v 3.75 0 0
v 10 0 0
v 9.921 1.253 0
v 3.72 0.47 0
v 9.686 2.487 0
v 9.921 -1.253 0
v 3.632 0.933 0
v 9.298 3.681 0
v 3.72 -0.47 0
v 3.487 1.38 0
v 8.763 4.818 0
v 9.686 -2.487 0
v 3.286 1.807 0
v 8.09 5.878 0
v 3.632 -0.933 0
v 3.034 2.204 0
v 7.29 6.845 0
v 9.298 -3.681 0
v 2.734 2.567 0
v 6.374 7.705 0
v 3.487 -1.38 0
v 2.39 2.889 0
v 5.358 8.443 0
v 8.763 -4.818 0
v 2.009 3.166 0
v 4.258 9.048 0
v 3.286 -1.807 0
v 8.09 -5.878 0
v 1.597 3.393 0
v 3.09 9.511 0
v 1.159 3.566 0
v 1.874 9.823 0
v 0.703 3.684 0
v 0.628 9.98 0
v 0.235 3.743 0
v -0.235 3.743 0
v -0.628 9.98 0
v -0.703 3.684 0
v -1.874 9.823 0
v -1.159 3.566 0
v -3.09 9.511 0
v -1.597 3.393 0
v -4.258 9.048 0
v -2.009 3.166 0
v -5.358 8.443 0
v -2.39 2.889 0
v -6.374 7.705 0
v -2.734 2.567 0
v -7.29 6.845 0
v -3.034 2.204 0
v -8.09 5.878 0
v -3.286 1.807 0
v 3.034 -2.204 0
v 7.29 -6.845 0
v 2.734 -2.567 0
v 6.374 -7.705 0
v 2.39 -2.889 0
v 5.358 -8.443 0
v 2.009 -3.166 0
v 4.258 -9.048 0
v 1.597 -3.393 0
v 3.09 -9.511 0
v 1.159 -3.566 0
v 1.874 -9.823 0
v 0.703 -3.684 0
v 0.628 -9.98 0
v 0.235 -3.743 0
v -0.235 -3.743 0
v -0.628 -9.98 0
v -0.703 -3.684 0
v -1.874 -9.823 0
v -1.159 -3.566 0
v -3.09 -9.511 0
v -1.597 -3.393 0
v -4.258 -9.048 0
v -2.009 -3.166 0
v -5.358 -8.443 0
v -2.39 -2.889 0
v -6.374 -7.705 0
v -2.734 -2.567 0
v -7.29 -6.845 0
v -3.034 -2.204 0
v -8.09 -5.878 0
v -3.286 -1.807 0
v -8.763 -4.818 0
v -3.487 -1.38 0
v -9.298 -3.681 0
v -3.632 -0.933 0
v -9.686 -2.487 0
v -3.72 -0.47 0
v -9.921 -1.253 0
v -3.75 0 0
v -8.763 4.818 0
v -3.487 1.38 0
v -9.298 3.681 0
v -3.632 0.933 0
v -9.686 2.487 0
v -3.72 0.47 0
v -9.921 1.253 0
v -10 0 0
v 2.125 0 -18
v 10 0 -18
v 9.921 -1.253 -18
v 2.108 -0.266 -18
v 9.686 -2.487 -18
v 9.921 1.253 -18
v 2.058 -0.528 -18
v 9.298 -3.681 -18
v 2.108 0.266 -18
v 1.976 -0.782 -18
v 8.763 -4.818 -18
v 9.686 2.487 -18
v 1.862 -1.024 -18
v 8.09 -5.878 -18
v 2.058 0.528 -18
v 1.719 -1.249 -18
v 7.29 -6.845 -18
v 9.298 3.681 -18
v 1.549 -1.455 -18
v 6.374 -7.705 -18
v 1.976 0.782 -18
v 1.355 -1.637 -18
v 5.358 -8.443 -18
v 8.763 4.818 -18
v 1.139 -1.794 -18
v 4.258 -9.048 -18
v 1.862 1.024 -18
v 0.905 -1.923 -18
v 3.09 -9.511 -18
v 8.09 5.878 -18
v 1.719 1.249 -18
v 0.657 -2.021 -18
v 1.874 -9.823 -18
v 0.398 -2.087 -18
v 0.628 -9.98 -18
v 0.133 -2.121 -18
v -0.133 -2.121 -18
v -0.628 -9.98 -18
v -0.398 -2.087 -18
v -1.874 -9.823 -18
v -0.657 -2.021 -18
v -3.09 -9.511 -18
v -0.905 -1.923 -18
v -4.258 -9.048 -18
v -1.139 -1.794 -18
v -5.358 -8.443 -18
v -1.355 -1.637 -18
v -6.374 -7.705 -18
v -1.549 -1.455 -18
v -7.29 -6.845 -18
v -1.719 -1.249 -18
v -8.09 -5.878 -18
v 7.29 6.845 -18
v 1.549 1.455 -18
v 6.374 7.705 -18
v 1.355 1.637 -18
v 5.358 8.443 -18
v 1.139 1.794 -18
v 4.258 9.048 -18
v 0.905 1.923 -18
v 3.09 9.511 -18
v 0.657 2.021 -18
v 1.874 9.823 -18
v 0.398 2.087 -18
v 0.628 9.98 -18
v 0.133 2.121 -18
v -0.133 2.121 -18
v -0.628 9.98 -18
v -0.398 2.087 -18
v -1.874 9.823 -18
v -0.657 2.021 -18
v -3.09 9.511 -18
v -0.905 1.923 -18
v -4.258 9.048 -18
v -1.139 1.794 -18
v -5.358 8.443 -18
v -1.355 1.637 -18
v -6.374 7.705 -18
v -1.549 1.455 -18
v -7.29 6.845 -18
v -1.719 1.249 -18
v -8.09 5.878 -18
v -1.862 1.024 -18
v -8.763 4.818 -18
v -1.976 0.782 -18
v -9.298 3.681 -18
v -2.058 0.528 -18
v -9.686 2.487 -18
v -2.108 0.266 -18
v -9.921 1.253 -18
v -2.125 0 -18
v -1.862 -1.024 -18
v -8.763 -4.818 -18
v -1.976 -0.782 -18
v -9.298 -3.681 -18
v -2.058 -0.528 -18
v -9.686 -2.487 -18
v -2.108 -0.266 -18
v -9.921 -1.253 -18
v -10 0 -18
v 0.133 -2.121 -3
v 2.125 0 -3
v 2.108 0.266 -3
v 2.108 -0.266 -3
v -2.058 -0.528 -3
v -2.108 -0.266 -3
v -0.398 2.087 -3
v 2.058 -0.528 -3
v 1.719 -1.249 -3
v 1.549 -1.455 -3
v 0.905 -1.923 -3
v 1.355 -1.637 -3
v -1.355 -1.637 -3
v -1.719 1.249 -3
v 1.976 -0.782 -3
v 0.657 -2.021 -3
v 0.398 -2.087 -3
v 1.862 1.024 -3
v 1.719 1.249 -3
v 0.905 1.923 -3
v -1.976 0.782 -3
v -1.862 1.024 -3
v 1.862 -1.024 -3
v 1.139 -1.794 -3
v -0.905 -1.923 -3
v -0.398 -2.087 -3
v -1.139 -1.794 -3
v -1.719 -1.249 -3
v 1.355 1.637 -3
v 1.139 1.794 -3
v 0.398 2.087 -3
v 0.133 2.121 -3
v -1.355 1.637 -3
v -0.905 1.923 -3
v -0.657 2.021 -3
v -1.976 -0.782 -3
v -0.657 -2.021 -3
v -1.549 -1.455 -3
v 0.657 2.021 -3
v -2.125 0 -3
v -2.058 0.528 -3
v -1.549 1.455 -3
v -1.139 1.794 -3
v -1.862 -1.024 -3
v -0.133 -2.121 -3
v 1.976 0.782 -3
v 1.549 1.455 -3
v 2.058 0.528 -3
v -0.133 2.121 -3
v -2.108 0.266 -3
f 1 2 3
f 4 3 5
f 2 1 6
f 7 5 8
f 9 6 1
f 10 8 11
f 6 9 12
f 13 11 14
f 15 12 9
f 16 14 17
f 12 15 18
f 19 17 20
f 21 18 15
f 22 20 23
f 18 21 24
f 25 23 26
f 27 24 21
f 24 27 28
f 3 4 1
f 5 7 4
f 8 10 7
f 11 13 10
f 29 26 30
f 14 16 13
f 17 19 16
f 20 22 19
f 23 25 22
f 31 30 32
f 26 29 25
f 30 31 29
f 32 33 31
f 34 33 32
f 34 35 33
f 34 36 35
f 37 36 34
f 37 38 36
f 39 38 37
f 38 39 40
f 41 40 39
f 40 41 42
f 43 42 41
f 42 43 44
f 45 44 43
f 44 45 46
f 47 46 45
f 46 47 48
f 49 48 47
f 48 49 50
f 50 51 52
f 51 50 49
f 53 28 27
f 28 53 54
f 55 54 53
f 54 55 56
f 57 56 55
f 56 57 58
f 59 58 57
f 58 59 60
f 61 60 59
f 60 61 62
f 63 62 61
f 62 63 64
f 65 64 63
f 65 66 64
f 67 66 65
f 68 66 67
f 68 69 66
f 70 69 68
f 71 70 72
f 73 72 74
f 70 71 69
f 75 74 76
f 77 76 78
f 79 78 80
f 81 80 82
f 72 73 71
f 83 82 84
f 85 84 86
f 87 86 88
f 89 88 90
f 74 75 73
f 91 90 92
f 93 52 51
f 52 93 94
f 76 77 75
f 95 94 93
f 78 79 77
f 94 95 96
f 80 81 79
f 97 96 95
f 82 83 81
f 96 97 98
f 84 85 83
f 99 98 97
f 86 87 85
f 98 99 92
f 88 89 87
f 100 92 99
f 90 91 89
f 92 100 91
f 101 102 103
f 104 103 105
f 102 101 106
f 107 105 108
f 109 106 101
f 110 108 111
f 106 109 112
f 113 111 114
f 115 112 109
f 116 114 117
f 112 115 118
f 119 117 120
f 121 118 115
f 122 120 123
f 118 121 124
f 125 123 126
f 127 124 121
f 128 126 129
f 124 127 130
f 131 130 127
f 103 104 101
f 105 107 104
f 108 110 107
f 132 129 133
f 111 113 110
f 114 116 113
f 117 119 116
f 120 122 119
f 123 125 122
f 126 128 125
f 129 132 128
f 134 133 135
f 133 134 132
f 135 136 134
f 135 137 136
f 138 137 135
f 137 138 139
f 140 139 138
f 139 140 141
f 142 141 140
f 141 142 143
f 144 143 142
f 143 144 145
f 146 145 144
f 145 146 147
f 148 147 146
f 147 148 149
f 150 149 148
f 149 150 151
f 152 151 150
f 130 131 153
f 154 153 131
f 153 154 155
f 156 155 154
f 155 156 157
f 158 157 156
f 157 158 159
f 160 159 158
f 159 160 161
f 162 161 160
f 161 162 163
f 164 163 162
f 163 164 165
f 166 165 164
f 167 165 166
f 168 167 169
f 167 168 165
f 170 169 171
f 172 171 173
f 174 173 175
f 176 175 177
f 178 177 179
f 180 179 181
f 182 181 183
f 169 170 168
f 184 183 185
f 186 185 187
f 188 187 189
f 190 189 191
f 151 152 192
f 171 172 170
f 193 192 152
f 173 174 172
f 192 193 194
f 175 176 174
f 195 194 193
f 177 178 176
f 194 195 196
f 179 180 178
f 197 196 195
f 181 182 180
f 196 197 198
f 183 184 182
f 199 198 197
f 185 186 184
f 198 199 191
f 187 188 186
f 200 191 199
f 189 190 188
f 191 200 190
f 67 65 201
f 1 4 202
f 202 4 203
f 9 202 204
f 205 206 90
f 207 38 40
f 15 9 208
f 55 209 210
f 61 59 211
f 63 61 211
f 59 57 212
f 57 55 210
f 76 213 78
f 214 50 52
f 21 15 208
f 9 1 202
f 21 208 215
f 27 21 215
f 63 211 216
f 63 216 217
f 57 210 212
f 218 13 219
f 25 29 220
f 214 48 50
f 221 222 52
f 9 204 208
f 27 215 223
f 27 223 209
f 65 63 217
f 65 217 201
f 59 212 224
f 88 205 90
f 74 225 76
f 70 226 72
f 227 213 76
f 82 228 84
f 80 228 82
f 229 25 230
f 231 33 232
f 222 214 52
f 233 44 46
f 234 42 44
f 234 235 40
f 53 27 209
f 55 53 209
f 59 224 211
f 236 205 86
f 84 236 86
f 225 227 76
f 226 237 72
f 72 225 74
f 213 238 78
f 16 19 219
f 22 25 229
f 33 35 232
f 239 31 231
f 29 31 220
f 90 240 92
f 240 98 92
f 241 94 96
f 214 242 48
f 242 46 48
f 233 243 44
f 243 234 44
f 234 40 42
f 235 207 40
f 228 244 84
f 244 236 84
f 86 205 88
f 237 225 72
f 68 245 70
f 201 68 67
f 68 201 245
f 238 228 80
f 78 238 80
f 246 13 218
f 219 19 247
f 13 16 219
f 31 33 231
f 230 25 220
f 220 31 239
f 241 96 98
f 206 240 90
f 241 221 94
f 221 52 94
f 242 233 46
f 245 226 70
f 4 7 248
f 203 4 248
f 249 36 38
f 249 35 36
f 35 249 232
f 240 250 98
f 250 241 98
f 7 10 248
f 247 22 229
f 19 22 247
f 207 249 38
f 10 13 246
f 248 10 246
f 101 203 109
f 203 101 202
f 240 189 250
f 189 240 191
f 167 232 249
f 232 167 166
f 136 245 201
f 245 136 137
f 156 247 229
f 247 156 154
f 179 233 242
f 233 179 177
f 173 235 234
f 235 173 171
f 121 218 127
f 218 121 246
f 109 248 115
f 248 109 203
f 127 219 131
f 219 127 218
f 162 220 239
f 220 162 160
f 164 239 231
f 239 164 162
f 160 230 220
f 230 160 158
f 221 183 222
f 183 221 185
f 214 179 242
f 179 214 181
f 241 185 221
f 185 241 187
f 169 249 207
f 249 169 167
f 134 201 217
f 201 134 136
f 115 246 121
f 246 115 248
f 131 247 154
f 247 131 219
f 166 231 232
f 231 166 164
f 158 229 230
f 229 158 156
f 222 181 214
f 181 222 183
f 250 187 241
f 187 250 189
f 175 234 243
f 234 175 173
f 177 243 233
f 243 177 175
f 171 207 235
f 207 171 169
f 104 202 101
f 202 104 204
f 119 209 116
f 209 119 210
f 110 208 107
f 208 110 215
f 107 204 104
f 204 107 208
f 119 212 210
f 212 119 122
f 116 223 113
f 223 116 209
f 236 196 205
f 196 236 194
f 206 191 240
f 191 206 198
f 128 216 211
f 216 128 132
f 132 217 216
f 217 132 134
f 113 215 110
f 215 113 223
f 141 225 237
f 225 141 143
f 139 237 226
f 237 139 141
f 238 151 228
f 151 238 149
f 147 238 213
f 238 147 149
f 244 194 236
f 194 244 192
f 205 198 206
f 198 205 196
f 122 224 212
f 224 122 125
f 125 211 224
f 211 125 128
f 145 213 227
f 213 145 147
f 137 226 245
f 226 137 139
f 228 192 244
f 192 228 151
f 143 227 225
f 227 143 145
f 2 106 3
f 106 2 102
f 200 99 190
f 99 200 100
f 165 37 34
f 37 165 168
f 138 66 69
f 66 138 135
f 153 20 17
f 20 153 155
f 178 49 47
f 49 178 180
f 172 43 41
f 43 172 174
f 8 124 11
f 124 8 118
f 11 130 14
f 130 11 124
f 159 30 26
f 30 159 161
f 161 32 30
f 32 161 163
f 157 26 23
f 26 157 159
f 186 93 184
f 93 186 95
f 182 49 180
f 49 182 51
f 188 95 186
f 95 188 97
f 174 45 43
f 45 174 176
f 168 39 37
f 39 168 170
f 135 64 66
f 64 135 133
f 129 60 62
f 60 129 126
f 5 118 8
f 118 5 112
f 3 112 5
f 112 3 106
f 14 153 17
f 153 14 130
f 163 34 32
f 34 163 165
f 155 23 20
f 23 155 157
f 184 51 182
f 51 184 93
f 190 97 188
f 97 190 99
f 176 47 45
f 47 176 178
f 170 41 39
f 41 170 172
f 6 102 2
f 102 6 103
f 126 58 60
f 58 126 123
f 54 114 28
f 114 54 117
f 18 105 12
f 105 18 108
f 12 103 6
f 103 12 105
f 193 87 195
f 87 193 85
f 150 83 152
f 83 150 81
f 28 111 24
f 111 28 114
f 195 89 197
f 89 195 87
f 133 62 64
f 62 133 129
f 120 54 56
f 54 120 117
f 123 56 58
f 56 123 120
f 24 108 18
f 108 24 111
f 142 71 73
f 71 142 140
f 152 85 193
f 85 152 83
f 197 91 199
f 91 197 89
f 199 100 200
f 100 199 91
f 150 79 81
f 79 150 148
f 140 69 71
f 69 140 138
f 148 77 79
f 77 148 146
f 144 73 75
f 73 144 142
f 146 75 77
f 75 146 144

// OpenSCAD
$fn = 50;


difference() {
	union() {
		translate(v = [0, 0, -18.0000000000]) {
			cylinder(h = 18, r = 10.0000000000);
		}
	}
	union() {
		translate(v = [0, 0, 0]) {
			rotate(a = [0, 0, 0]) {
				difference() {
					union() {
						#translate(v = [0, 0, -18.0000000000]) {
							cylinder(h = 18, r = 2.0000000000);
						}
						#translate(v = [0, 0, -3]) {
							cylinder(h = 3, r = 10.0000000000, r1 = 2.1250000000, r2 = 3.7500000000);
						}
						#translate(v = [0, 0, -18.0000000000]) {
							cylinder(h = 18, r = 2.1250000000);
						}
						#translate(v = [0, 0, -18.0000000000]) {
							cylinder(h = 18, r = 2.0000000000);
						}
					}
					union();
				}
			}
		}
	}
}
